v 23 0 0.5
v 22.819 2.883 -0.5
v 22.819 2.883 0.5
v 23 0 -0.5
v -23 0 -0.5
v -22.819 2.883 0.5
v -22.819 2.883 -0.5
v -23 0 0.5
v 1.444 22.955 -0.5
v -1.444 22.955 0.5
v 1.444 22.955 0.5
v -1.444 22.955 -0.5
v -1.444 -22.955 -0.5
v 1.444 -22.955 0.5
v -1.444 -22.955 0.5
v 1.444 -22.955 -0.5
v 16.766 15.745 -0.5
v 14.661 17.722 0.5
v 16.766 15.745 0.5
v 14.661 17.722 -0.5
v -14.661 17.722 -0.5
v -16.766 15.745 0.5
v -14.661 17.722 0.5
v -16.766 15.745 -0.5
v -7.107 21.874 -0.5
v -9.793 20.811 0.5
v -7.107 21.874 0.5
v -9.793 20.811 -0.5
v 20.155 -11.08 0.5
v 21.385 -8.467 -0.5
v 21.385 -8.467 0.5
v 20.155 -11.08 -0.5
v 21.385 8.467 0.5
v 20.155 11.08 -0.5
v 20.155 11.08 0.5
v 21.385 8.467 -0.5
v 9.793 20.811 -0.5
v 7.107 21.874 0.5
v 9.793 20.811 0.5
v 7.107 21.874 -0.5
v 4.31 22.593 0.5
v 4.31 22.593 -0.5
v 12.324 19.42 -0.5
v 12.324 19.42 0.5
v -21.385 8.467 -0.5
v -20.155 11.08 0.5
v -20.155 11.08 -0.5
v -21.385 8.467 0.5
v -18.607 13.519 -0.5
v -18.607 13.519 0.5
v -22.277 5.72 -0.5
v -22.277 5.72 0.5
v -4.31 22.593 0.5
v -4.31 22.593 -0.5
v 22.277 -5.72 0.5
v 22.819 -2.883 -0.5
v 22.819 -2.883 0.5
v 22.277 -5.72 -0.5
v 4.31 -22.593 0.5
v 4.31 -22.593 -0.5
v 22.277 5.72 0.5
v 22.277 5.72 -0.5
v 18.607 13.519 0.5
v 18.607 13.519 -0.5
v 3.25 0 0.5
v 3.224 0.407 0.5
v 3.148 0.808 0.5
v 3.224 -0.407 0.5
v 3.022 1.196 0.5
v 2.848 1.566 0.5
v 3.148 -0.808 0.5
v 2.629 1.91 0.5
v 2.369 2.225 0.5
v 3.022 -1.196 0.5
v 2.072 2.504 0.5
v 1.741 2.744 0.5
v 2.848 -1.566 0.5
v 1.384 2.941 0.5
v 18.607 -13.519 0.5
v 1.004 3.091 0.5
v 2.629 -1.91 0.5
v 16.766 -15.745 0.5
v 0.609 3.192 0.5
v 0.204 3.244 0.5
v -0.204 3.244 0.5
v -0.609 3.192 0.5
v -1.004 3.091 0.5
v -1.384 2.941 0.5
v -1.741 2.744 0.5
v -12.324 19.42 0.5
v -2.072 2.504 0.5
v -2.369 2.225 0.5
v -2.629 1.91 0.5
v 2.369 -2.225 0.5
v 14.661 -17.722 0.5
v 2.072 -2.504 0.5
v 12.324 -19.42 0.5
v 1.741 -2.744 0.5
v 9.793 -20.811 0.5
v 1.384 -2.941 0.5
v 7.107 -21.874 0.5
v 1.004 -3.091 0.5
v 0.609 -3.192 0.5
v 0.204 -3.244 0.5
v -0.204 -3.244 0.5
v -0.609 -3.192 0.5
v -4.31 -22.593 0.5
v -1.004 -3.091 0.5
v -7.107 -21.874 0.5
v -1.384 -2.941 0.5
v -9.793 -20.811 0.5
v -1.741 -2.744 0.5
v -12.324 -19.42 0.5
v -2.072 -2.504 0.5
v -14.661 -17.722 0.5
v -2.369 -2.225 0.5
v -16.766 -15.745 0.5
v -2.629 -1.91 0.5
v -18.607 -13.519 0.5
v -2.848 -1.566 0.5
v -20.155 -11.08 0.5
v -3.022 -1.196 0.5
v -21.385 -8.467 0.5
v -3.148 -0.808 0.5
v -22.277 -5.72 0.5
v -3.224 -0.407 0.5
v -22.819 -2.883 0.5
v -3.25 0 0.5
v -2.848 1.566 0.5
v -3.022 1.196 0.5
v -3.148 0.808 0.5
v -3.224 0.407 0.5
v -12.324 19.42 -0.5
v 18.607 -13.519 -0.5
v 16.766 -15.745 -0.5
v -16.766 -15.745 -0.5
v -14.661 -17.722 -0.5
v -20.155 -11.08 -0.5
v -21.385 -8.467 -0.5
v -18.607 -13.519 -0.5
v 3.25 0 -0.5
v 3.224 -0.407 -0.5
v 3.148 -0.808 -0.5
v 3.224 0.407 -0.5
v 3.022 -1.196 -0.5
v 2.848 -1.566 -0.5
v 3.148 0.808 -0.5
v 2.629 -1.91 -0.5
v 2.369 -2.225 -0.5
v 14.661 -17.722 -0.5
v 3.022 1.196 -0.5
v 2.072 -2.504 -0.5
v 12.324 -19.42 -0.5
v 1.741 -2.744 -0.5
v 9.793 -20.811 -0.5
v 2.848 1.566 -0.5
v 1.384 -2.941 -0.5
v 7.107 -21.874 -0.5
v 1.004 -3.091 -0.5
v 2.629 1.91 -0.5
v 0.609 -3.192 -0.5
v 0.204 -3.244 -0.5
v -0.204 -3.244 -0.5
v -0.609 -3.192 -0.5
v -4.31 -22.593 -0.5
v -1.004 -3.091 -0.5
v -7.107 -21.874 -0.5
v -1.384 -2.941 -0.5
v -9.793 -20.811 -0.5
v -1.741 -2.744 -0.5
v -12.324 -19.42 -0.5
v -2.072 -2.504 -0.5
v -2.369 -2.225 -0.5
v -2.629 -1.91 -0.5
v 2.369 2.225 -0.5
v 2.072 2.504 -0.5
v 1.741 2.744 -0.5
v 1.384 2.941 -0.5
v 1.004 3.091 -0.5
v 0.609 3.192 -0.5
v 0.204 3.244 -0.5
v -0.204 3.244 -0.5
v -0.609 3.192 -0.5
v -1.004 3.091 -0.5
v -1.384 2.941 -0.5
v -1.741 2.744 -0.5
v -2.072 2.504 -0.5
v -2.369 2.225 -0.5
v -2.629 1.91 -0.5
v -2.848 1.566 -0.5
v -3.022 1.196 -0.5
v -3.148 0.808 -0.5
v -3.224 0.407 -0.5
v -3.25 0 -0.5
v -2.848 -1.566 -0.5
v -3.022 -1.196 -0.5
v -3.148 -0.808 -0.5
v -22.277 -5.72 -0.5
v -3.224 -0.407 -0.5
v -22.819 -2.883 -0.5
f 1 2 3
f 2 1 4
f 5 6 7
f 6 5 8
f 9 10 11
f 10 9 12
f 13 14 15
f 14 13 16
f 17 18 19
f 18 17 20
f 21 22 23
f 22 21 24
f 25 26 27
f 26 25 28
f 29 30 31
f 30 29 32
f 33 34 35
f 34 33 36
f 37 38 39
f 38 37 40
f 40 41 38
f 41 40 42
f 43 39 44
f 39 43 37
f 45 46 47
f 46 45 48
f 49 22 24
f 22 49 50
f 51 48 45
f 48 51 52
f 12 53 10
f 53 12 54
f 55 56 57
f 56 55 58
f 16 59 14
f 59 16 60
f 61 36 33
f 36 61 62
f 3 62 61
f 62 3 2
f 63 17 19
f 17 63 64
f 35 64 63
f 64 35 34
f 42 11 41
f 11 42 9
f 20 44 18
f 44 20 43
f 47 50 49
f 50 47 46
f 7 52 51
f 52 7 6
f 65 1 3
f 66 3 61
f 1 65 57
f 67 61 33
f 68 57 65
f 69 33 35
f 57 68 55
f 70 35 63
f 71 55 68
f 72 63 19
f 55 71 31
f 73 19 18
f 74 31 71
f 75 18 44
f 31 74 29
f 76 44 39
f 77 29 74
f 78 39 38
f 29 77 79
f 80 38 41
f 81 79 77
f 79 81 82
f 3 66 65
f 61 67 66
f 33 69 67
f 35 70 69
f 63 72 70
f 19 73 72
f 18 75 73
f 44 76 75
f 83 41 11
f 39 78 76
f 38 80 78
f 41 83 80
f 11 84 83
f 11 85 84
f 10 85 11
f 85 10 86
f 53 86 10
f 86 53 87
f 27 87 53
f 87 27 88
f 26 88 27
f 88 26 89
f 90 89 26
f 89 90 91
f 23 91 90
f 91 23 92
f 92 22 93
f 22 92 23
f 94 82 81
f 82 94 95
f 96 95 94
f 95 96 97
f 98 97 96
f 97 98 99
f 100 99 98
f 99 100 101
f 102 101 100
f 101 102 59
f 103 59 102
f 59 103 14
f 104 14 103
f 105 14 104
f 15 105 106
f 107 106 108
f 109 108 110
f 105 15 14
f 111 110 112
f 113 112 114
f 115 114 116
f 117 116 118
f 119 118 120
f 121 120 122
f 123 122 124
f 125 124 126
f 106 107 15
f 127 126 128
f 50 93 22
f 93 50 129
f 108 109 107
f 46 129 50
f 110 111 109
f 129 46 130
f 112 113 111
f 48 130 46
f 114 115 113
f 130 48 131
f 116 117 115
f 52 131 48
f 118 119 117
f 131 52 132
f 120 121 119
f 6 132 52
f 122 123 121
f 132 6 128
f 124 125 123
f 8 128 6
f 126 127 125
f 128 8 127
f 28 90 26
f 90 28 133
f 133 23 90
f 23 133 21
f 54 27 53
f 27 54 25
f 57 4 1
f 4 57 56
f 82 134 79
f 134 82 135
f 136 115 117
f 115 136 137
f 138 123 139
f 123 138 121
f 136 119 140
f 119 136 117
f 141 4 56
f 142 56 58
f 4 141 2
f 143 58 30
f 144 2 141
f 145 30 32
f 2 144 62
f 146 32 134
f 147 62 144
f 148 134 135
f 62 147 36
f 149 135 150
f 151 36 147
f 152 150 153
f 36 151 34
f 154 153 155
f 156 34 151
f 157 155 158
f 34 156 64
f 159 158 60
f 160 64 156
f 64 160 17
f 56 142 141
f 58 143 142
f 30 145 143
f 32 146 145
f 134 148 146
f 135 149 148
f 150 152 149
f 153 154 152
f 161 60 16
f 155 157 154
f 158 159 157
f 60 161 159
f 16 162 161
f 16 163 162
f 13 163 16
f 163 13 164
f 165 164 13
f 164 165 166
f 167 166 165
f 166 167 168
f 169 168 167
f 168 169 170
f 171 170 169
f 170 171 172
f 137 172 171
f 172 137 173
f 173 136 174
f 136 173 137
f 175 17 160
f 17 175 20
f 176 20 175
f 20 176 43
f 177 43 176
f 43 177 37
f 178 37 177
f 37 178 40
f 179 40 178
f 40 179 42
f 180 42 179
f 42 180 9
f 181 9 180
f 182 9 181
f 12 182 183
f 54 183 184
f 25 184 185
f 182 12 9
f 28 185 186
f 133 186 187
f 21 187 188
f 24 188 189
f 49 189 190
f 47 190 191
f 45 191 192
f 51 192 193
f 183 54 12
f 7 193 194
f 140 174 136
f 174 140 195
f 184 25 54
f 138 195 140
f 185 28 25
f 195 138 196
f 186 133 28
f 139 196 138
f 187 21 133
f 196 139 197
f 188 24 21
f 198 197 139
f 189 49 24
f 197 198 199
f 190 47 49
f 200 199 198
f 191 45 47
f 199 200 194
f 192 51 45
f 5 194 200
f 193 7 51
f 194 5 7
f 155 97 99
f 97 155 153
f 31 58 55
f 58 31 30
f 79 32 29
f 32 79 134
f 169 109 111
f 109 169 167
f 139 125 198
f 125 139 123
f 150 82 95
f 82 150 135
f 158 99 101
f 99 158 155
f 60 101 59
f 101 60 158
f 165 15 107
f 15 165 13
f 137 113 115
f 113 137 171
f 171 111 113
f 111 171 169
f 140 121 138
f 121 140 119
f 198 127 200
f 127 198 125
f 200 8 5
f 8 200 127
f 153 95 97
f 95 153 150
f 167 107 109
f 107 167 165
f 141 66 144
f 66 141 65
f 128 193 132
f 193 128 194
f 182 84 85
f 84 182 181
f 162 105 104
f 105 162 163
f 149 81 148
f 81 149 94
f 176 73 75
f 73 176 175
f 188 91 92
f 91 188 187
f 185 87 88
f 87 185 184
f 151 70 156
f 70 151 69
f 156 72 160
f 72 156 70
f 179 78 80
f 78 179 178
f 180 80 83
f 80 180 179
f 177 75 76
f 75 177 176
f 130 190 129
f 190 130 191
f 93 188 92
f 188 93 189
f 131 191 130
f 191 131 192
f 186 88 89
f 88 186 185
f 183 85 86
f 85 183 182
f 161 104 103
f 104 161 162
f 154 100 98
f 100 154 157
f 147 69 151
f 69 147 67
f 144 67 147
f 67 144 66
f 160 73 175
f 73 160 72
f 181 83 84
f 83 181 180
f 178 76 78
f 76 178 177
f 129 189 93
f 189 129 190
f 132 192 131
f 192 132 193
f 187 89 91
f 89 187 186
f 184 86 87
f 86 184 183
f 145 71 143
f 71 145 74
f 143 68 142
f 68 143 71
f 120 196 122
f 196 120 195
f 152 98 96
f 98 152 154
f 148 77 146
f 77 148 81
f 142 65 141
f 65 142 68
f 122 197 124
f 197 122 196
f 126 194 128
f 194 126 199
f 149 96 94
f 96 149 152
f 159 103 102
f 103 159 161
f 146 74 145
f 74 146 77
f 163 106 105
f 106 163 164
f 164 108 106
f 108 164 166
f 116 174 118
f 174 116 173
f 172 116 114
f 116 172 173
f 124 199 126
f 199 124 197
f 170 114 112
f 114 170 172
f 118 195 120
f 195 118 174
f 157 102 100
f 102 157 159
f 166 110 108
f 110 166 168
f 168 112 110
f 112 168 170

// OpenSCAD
$fn = 50;


difference() {
	union() {
		translate(v = [0, 0, -0.5000000000]) {
			cylinder(h = 1, r = 23.0000000000);
		}
	}
	union() {
		translate(v = [0, 0, -100.0000000000]) {
			cylinder(h = 200, r = 3.2500000000);
		}
	}
}
